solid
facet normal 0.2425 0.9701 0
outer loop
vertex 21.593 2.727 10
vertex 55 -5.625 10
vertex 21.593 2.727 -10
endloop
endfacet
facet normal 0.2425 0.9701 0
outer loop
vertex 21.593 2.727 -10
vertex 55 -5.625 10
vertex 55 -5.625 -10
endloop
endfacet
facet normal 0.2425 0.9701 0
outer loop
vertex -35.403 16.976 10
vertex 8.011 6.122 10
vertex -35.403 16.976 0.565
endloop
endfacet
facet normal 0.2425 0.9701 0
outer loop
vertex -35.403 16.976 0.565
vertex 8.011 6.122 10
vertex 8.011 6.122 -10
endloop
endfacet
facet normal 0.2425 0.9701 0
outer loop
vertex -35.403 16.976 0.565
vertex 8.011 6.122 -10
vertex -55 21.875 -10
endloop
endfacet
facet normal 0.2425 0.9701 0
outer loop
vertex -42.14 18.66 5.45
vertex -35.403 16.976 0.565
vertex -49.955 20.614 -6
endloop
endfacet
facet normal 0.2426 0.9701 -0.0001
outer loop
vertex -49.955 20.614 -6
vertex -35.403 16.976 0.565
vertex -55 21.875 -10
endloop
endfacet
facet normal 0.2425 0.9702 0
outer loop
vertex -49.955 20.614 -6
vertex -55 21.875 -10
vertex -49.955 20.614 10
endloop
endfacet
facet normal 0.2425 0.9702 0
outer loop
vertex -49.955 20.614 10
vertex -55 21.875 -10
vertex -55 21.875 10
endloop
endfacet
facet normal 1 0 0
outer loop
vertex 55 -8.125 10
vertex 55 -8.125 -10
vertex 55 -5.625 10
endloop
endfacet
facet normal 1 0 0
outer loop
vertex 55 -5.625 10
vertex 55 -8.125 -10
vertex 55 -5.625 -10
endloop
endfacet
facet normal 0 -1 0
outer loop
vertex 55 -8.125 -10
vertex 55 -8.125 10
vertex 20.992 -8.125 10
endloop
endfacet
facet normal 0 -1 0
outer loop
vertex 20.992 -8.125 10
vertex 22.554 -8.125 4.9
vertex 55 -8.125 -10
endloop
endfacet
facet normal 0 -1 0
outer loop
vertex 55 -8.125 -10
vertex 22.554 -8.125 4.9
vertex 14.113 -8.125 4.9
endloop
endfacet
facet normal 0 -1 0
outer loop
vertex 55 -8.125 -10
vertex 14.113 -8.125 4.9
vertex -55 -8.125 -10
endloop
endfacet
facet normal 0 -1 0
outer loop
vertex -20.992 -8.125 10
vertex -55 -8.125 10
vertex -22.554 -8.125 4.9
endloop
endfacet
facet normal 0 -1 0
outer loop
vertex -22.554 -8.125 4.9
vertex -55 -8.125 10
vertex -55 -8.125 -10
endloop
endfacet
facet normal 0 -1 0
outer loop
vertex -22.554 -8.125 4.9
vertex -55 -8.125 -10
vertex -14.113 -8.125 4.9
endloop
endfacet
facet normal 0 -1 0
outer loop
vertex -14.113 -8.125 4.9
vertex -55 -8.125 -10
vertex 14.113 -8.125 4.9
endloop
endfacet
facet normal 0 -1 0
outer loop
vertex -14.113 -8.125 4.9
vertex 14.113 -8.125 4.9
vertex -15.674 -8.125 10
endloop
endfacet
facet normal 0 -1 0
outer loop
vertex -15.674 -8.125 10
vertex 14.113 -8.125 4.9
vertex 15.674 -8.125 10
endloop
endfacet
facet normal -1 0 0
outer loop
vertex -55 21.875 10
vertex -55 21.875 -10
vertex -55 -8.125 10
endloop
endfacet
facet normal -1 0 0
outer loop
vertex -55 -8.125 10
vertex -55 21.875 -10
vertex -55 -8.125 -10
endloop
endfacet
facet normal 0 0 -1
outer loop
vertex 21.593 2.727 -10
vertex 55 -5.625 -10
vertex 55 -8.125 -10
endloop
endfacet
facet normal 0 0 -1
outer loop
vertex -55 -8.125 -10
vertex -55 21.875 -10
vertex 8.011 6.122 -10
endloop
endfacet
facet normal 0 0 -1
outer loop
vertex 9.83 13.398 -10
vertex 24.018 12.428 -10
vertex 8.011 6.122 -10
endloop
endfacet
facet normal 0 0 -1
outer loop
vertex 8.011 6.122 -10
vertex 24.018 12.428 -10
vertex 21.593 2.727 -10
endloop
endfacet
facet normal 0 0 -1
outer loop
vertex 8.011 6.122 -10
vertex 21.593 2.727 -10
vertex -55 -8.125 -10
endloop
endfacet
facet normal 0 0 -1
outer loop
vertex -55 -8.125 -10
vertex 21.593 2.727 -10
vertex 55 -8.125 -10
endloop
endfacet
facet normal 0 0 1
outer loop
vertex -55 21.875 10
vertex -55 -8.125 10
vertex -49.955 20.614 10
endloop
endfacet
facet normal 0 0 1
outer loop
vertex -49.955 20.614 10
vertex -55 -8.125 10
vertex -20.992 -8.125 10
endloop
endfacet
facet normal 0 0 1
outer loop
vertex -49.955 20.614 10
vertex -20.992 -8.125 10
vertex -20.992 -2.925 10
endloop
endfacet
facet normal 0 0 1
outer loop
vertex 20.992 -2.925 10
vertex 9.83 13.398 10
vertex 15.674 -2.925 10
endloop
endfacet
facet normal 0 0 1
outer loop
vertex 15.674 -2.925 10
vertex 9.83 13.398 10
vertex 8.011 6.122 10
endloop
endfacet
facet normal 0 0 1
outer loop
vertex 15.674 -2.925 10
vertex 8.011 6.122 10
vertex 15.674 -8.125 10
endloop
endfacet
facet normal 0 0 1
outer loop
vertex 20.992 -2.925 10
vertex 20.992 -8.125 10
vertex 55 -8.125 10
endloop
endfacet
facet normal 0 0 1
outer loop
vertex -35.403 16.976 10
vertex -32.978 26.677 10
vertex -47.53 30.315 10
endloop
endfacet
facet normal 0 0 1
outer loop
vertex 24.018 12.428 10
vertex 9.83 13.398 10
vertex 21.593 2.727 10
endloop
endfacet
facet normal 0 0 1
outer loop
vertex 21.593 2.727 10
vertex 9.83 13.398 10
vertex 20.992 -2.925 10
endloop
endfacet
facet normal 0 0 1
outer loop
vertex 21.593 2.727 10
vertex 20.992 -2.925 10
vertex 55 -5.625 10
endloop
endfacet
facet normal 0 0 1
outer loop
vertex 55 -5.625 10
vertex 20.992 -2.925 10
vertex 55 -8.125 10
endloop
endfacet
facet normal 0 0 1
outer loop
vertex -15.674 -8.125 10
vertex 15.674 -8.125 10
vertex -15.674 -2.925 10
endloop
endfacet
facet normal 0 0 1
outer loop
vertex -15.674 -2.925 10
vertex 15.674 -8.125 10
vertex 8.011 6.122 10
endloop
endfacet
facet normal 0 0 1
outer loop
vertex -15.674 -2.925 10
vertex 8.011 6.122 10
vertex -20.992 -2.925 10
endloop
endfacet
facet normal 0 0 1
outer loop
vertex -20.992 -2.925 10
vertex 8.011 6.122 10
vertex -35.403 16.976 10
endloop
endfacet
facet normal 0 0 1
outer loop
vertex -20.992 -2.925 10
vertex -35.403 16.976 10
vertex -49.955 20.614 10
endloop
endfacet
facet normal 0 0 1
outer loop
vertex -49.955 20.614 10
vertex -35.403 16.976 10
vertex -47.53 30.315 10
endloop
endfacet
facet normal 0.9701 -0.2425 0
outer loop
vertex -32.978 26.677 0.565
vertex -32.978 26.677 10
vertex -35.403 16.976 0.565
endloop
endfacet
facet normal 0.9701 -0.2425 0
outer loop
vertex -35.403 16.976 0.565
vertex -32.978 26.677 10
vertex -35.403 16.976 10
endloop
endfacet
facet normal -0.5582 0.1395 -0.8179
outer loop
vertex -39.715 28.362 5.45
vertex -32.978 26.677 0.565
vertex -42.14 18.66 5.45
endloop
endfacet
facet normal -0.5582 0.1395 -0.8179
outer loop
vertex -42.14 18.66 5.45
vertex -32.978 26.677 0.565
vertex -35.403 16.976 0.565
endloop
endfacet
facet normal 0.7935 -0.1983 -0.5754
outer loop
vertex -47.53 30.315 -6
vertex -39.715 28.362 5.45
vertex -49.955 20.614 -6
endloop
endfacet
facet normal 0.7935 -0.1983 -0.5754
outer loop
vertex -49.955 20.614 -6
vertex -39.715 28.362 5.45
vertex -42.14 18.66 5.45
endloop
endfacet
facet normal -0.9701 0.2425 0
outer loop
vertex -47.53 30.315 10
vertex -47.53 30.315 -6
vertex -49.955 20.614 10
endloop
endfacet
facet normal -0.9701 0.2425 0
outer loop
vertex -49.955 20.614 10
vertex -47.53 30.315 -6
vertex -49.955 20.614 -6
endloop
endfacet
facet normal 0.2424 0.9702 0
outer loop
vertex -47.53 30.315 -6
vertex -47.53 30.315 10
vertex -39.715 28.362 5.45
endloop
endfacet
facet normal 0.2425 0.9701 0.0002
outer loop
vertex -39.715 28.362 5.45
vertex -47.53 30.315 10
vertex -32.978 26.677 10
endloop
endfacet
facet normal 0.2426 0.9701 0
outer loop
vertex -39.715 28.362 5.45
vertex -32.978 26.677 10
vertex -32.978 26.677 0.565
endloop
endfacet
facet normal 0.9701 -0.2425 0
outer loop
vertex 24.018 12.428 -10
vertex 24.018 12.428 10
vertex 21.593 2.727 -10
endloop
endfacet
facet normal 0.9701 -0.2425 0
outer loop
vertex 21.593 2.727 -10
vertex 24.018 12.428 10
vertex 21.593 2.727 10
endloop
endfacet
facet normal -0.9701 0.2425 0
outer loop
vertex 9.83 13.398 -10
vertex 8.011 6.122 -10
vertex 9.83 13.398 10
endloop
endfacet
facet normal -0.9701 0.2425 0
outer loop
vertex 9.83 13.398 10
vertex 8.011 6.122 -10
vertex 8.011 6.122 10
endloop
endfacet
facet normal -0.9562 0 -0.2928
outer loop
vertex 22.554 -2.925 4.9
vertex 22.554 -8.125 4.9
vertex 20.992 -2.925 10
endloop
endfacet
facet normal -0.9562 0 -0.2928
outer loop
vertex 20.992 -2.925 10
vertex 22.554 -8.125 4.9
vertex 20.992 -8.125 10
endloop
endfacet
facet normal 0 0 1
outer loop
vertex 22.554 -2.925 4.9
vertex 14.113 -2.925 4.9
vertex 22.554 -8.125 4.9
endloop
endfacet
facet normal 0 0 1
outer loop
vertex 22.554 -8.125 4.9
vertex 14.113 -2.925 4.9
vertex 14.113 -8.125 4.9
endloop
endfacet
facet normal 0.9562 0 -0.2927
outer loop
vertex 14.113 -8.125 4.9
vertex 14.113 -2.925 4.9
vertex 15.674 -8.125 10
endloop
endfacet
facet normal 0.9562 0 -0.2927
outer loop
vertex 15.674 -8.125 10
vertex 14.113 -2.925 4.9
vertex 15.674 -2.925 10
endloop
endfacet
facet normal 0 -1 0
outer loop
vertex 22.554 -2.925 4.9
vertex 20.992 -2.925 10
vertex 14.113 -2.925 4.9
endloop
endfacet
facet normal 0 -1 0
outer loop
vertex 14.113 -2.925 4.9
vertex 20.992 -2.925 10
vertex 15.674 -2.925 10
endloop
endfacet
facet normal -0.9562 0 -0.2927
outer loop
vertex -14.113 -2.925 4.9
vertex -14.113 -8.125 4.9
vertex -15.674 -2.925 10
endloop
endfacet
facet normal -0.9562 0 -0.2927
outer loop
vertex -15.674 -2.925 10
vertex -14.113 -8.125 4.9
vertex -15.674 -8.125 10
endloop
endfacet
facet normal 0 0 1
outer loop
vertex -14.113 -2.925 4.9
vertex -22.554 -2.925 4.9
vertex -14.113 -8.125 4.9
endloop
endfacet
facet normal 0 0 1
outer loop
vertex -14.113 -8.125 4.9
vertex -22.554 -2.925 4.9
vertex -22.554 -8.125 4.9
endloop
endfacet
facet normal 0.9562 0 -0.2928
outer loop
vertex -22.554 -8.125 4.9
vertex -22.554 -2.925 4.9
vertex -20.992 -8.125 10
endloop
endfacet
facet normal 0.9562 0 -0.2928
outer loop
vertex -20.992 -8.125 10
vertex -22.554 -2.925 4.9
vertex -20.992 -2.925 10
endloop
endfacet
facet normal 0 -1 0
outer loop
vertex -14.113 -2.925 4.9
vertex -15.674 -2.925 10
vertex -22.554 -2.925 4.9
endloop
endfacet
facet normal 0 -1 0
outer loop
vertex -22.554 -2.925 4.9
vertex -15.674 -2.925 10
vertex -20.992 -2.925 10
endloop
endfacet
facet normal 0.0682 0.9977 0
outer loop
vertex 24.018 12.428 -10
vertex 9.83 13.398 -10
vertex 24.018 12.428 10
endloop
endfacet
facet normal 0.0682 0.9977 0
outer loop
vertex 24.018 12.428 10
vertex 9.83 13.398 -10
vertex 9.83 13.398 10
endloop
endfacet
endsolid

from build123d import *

# Parameters (mm, degrees)
BOSS_EXTRUDE1_DEPTH      = 10
BOSS_EXTRUDE1_DEPTH_BACK = 10
SKETCH2_W                = 14
SKETCH2_H                = 20
BOSS_EXTRUDE2_DEPTH      = 10
CUT_EXTRUDE1_DEPTH       = 5.2
CUT_EXTRUDE2_DEPTH       = 20


with BuildPart() as part:
    # Sketch1 → Boss-Extrude1 (new, two sides: drawn at the far end of the back side and taken through both)
    with BuildSketch(Plane.XY.offset(-BOSS_EXTRUDE1_DEPTH_BACK)):
        Polygon((-55, 21.875), (55, -5.625), (55, -8.125), (-55, -8.125), align=None)
    extrude(amount=BOSS_EXTRUDE1_DEPTH + BOSS_EXTRUDE1_DEPTH_BACK)

    # Sketch2 → Boss-Extrude2 (add)
    with BuildSketch(Plane(origin=(1.911764706, 7.647058824, 0), x_dir=(0.970142500145332, -0.24253562503633289, 0), z_dir=(0.24253562503633289, 0.970142500145332, 0))):
        Polygon((-53.463304306, -10), (-38.463304306, -10), (-38.463304306, -0.564895404), (-45.408034785, -5.450442479), (-53.463304306, 6), align=None)
        with Locations((13.286695694, 0)):
            Rectangle(SKETCH2_W, SKETCH2_H)
    extrude(amount=BOSS_EXTRUDE2_DEPTH)

    # Sketch3 → Cut-Extrude1 (cut)
    with BuildSketch(Plane.XZ.offset(8.125)):
        Polygon((15.692093342, 10.058542854), (14.11294757, 4.9), (22.553719096, 4.9), (20.974573324, 10.058542854), align=None)
        Polygon((-20.974573324, 10.058542854), (-22.553719096, 4.9), (-14.11294757, 4.9), (-15.692093342, 10.058542854), align=None)
    extrude(amount=-CUT_EXTRUDE1_DEPTH, mode=Mode.SUBTRACT)

    # Sketch4 → Cut-Extrude2 (cut)
    with BuildSketch(Plane.XY.offset(10)):
        Polygon((9.829772572, 13.398379905), (10.436111635, 15.823736155), (24.018106637, 12.428237405), align=None)
    extrude(amount=-CUT_EXTRUDE2_DEPTH, mode=Mode.SUBTRACT)


solid = part.part
